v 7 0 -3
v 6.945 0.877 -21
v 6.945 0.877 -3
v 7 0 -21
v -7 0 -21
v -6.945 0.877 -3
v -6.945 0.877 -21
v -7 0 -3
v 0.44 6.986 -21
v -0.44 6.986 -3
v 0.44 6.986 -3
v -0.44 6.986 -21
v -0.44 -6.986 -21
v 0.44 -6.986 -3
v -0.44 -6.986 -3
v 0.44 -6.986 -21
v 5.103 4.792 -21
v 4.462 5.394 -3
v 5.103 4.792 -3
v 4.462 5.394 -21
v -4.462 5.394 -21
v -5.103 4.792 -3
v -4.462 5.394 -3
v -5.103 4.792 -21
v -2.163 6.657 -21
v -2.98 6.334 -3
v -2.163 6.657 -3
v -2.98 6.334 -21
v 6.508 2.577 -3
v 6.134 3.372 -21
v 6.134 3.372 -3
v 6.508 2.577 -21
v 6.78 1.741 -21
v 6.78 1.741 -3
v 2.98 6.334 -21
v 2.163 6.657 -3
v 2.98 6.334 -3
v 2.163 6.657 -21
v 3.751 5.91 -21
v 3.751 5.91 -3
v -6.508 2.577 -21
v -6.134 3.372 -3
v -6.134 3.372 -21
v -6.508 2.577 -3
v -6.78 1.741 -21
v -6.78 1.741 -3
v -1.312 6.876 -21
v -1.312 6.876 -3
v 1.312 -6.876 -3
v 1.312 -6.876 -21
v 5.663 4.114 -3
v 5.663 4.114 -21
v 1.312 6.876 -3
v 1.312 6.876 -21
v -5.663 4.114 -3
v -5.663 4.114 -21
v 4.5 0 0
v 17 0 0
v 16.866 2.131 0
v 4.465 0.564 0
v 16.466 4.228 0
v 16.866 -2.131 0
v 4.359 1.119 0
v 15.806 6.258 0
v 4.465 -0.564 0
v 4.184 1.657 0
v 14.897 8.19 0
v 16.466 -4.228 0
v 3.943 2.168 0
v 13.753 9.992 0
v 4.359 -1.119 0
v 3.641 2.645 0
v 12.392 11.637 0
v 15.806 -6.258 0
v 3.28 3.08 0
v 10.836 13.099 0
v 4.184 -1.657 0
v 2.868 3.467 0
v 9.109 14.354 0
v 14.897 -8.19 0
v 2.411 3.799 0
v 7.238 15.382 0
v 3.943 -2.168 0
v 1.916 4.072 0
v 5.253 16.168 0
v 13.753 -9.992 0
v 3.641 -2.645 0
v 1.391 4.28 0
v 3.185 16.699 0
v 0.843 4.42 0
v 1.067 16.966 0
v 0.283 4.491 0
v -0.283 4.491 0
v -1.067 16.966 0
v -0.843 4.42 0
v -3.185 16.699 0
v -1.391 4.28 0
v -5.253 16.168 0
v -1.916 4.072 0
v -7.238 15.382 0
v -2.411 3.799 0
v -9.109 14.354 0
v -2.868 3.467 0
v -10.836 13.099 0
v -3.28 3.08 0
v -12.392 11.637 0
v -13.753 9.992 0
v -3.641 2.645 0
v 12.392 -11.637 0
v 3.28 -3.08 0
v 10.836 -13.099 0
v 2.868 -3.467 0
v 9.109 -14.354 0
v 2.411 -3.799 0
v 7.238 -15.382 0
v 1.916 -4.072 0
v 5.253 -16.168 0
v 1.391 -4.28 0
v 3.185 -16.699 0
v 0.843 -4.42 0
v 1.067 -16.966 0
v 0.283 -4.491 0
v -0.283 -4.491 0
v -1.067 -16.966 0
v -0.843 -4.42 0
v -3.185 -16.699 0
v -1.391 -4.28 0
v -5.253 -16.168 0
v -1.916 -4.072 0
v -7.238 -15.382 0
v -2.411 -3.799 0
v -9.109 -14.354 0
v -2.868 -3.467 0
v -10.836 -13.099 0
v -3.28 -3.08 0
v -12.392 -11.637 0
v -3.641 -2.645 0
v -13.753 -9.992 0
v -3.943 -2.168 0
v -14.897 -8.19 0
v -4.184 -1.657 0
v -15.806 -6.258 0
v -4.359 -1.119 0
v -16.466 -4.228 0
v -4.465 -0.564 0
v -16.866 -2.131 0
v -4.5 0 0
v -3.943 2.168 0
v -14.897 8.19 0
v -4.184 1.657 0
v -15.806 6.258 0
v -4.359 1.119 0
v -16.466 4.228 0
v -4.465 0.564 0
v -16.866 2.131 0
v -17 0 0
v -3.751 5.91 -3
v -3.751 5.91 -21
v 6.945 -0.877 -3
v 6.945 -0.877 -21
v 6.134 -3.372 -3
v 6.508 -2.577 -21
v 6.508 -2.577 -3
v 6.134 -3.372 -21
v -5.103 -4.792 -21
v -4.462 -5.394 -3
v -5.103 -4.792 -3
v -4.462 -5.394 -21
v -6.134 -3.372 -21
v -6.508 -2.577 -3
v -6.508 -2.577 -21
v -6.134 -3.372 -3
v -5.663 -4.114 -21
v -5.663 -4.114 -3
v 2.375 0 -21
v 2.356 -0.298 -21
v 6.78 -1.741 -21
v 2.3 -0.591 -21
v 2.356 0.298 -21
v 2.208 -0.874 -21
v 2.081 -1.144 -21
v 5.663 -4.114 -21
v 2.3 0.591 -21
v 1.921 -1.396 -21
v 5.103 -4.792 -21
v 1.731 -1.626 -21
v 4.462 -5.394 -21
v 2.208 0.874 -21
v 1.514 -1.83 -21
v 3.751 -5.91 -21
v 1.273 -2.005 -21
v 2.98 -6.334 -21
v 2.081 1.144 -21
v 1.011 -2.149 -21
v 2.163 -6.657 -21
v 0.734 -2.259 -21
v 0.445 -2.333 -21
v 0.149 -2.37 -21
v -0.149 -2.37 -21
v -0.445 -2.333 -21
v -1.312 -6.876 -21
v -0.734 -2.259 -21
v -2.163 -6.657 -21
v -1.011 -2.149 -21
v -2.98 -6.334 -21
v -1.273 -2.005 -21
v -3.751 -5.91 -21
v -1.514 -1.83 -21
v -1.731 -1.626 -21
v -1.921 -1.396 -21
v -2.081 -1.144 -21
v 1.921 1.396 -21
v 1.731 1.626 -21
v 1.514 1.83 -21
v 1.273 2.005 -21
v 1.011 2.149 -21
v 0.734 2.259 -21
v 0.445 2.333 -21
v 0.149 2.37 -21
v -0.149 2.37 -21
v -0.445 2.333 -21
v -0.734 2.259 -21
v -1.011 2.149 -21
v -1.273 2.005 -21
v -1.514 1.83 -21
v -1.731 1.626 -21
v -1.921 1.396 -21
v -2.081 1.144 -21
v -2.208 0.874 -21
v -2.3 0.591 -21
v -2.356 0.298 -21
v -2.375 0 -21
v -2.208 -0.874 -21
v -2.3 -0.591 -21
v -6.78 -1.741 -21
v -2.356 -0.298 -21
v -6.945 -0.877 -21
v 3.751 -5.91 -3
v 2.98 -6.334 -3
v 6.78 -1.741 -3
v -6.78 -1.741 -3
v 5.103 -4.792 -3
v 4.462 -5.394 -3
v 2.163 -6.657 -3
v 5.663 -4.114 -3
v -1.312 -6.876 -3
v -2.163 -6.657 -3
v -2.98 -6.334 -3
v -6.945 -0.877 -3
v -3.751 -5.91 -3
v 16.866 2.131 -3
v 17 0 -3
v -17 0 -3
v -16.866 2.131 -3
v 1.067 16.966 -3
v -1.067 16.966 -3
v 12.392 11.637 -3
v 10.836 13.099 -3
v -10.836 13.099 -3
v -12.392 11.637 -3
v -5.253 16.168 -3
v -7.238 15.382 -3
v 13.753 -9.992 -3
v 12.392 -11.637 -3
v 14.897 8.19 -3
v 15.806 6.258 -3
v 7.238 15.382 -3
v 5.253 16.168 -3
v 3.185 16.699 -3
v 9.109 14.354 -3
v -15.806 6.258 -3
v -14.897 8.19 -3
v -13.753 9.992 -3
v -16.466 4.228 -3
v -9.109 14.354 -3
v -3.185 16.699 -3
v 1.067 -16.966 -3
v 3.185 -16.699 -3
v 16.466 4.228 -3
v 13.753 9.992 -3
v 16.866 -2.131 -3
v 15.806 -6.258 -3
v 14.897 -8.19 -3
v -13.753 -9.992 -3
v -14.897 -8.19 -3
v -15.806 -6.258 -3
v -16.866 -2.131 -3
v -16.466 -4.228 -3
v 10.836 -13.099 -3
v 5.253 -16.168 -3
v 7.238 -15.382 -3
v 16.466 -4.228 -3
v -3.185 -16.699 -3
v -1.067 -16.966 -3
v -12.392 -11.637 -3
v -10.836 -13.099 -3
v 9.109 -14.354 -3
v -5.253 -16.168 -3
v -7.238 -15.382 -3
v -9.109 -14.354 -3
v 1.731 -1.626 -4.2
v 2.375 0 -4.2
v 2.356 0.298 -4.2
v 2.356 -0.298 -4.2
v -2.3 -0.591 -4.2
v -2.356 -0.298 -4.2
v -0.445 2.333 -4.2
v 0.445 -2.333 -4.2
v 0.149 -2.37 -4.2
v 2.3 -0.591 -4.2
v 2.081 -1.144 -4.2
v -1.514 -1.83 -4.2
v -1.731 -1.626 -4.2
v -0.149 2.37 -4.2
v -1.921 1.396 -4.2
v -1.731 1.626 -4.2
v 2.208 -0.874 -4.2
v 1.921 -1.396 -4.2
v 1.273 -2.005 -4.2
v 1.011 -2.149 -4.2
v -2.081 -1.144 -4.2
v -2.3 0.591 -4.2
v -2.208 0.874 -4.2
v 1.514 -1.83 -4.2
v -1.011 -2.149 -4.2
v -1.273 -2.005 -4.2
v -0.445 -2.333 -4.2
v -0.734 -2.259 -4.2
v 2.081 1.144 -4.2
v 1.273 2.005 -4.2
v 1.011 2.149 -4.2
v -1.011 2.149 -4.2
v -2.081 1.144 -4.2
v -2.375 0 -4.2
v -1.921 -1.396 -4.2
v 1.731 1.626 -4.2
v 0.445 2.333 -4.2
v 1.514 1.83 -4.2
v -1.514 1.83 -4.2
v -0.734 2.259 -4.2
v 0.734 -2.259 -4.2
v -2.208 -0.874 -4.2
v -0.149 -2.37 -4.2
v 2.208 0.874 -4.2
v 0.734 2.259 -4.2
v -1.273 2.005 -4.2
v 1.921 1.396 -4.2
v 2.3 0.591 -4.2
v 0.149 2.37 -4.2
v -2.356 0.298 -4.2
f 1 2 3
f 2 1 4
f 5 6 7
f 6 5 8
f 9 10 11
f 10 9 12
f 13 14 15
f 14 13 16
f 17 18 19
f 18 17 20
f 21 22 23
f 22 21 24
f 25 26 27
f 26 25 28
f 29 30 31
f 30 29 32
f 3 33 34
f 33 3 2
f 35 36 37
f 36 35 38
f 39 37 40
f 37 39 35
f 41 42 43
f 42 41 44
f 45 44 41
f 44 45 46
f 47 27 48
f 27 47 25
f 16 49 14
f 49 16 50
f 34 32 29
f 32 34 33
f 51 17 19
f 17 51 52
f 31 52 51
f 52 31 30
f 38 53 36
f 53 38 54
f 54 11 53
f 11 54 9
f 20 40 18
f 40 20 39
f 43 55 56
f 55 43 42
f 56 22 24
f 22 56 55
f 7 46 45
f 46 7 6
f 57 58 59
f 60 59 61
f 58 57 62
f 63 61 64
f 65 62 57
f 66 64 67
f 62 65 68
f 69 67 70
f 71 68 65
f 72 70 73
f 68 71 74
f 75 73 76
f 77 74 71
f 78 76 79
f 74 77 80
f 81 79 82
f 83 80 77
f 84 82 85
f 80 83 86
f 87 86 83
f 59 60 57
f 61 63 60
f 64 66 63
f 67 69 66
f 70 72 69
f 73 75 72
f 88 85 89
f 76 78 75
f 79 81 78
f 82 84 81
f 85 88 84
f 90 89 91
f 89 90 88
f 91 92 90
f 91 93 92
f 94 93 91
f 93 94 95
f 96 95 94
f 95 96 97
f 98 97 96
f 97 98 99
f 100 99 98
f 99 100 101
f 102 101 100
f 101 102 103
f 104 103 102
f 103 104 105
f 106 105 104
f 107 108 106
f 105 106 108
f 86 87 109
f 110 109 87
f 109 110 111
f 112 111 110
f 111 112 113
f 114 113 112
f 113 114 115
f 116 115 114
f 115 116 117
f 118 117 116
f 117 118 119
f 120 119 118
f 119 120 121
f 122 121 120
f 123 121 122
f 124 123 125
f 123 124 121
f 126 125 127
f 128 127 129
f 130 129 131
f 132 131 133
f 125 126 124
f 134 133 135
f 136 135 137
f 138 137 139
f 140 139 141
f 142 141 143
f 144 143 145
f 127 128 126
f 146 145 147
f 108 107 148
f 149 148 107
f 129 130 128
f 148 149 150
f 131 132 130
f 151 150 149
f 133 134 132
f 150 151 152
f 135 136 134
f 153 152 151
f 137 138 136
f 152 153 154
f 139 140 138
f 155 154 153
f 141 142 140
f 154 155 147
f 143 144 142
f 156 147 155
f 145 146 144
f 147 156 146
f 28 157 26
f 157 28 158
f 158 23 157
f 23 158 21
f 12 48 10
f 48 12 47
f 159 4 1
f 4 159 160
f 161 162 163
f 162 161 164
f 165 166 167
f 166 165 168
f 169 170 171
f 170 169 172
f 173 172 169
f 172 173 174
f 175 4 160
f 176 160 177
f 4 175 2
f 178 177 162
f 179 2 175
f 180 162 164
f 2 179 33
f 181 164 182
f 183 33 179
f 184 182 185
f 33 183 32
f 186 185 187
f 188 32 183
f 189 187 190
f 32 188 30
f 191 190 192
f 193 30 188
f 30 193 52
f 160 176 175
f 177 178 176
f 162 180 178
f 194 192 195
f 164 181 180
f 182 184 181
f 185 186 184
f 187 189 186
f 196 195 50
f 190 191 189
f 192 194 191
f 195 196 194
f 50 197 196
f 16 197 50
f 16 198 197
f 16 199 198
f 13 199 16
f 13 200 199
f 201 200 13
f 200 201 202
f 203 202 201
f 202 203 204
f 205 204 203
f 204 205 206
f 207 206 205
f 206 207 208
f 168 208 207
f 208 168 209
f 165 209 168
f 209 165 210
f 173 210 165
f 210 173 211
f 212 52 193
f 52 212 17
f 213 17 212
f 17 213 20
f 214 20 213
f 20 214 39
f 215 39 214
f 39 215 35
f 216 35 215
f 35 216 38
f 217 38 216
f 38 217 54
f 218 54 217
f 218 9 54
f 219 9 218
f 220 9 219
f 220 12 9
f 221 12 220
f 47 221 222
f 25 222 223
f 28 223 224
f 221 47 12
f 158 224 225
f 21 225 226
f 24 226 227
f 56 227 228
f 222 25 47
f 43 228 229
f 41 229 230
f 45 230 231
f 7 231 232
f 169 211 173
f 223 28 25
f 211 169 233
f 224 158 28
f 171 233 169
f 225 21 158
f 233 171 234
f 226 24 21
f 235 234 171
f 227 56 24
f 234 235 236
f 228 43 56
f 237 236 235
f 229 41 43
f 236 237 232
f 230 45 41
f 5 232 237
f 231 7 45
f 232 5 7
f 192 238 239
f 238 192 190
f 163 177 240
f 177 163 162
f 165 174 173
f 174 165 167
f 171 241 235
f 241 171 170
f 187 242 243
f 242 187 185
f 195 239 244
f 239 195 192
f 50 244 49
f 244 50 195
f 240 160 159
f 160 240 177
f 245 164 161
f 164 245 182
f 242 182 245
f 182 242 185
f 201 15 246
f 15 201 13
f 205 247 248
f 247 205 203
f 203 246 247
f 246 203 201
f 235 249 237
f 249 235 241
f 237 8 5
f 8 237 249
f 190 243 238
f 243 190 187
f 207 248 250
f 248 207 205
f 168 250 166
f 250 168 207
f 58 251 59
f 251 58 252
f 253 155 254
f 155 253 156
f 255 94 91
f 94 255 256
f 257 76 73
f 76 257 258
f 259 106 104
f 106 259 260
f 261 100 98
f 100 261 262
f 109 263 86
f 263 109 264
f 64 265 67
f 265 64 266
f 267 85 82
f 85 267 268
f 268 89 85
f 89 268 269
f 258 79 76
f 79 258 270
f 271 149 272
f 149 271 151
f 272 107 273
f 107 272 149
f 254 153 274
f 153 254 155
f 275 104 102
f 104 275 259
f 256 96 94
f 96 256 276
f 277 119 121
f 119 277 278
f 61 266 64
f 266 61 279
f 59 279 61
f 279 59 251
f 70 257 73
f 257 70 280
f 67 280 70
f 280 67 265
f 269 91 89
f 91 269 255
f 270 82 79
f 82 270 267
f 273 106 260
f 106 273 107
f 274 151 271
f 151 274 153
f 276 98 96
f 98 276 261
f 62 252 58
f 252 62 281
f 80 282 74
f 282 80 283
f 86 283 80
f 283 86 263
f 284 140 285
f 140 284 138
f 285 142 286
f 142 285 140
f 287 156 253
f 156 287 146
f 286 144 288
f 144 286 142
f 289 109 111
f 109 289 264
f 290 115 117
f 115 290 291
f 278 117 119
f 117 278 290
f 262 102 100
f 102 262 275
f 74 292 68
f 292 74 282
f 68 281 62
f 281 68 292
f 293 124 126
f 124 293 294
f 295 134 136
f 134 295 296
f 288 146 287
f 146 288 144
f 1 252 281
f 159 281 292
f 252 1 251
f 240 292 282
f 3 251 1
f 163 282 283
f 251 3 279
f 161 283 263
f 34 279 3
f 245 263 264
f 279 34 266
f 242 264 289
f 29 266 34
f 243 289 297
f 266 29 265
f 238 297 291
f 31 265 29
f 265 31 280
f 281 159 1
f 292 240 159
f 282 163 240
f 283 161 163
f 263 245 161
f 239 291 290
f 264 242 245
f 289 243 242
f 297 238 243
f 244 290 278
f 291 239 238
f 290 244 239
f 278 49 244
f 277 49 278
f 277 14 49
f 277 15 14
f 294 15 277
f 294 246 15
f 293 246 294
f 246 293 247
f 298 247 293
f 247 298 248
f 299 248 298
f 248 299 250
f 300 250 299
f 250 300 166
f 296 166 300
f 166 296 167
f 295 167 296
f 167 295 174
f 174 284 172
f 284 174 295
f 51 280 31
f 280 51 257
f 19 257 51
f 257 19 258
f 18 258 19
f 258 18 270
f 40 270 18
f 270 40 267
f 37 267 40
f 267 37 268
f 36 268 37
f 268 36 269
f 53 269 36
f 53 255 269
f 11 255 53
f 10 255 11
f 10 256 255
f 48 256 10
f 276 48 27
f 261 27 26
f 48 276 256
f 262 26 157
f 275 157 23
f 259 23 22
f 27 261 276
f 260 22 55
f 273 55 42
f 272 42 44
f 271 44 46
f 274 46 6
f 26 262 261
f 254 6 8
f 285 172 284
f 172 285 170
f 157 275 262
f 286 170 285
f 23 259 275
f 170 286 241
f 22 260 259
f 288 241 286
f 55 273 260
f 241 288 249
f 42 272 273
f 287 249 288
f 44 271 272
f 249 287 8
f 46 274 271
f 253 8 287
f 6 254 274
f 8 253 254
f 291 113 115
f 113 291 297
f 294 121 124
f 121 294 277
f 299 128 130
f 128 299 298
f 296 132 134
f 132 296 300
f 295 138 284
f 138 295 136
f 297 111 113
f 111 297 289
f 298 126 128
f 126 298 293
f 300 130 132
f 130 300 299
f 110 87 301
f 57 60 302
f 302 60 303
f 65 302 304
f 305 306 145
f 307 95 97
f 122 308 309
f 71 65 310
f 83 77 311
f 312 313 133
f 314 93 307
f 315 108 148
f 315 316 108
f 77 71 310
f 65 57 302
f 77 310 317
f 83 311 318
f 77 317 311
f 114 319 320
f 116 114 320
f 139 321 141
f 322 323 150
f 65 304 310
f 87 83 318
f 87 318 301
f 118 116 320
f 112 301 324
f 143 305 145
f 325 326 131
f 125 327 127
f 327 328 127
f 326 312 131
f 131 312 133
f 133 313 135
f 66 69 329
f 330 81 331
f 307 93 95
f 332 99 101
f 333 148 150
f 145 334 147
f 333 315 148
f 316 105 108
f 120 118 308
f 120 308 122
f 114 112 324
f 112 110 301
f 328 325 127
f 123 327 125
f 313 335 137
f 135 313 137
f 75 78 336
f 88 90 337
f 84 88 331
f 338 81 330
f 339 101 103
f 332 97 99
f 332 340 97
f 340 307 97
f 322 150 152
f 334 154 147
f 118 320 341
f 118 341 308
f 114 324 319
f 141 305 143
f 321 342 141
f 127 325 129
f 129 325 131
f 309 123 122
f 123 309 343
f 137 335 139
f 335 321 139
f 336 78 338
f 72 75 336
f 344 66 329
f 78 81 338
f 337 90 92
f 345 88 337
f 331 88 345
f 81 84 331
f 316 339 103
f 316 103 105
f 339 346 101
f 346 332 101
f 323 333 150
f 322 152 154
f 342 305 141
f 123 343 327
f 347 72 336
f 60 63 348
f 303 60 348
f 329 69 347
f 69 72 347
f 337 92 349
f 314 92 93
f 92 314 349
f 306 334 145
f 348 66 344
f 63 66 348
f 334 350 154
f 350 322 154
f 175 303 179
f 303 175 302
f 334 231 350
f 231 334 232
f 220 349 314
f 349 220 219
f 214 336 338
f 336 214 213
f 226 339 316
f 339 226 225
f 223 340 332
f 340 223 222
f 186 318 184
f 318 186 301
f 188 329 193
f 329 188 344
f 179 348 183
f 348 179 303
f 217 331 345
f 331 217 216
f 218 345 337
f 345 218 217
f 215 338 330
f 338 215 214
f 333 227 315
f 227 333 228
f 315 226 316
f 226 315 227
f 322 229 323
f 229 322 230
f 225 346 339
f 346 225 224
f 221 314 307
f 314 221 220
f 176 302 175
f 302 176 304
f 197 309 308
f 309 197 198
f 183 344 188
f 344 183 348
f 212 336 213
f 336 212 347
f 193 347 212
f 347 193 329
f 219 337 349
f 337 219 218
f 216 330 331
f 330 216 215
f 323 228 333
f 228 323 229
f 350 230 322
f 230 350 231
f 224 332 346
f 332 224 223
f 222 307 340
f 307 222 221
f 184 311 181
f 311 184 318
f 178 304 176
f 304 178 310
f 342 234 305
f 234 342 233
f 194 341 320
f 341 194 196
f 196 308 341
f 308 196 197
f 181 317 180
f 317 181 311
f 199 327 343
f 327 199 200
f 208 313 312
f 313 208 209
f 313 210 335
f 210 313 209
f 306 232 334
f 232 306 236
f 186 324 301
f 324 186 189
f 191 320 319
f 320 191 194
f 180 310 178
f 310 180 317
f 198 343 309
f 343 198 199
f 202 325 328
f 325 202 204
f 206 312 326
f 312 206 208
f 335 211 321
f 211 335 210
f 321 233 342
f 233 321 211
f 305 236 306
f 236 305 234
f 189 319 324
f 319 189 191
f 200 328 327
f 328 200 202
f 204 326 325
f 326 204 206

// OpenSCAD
$fn = 50;


difference() {
	union() {
		translate(v = [0, 0, -21.0000000000]) {
			cylinder(h = 21, r = 7.0000000000);
		}
		translate(v = [0, 0, -3.0000000000]) {
			cylinder(h = 3, r = 17.0000000000);
		}
	}
	union() {
		translate(v = [0, 0, 0]) {
			rotate(a = [0, 0, 0]) {
				difference() {
					union() {
						#translate(v = [0, 0, -21.0000000000]) {
							cylinder(h = 21, r = 2.2500000000);
						}
						#translate(v = [0, 0, -4.2000000000]) {
							cylinder(h = 4.2000000000, r1 = 2.3750000000, r2 = 4.5000000000);
						}
						#translate(v = [0, 0, -21.0000000000]) {
							cylinder(h = 21, r = 2.3750000000);
						}
						#translate(v = [0, 0, -21.0000000000]) {
							cylinder(h = 21, r = 2.2500000000);
						}
					}
					union();
				}
			}
		}
	}
}
